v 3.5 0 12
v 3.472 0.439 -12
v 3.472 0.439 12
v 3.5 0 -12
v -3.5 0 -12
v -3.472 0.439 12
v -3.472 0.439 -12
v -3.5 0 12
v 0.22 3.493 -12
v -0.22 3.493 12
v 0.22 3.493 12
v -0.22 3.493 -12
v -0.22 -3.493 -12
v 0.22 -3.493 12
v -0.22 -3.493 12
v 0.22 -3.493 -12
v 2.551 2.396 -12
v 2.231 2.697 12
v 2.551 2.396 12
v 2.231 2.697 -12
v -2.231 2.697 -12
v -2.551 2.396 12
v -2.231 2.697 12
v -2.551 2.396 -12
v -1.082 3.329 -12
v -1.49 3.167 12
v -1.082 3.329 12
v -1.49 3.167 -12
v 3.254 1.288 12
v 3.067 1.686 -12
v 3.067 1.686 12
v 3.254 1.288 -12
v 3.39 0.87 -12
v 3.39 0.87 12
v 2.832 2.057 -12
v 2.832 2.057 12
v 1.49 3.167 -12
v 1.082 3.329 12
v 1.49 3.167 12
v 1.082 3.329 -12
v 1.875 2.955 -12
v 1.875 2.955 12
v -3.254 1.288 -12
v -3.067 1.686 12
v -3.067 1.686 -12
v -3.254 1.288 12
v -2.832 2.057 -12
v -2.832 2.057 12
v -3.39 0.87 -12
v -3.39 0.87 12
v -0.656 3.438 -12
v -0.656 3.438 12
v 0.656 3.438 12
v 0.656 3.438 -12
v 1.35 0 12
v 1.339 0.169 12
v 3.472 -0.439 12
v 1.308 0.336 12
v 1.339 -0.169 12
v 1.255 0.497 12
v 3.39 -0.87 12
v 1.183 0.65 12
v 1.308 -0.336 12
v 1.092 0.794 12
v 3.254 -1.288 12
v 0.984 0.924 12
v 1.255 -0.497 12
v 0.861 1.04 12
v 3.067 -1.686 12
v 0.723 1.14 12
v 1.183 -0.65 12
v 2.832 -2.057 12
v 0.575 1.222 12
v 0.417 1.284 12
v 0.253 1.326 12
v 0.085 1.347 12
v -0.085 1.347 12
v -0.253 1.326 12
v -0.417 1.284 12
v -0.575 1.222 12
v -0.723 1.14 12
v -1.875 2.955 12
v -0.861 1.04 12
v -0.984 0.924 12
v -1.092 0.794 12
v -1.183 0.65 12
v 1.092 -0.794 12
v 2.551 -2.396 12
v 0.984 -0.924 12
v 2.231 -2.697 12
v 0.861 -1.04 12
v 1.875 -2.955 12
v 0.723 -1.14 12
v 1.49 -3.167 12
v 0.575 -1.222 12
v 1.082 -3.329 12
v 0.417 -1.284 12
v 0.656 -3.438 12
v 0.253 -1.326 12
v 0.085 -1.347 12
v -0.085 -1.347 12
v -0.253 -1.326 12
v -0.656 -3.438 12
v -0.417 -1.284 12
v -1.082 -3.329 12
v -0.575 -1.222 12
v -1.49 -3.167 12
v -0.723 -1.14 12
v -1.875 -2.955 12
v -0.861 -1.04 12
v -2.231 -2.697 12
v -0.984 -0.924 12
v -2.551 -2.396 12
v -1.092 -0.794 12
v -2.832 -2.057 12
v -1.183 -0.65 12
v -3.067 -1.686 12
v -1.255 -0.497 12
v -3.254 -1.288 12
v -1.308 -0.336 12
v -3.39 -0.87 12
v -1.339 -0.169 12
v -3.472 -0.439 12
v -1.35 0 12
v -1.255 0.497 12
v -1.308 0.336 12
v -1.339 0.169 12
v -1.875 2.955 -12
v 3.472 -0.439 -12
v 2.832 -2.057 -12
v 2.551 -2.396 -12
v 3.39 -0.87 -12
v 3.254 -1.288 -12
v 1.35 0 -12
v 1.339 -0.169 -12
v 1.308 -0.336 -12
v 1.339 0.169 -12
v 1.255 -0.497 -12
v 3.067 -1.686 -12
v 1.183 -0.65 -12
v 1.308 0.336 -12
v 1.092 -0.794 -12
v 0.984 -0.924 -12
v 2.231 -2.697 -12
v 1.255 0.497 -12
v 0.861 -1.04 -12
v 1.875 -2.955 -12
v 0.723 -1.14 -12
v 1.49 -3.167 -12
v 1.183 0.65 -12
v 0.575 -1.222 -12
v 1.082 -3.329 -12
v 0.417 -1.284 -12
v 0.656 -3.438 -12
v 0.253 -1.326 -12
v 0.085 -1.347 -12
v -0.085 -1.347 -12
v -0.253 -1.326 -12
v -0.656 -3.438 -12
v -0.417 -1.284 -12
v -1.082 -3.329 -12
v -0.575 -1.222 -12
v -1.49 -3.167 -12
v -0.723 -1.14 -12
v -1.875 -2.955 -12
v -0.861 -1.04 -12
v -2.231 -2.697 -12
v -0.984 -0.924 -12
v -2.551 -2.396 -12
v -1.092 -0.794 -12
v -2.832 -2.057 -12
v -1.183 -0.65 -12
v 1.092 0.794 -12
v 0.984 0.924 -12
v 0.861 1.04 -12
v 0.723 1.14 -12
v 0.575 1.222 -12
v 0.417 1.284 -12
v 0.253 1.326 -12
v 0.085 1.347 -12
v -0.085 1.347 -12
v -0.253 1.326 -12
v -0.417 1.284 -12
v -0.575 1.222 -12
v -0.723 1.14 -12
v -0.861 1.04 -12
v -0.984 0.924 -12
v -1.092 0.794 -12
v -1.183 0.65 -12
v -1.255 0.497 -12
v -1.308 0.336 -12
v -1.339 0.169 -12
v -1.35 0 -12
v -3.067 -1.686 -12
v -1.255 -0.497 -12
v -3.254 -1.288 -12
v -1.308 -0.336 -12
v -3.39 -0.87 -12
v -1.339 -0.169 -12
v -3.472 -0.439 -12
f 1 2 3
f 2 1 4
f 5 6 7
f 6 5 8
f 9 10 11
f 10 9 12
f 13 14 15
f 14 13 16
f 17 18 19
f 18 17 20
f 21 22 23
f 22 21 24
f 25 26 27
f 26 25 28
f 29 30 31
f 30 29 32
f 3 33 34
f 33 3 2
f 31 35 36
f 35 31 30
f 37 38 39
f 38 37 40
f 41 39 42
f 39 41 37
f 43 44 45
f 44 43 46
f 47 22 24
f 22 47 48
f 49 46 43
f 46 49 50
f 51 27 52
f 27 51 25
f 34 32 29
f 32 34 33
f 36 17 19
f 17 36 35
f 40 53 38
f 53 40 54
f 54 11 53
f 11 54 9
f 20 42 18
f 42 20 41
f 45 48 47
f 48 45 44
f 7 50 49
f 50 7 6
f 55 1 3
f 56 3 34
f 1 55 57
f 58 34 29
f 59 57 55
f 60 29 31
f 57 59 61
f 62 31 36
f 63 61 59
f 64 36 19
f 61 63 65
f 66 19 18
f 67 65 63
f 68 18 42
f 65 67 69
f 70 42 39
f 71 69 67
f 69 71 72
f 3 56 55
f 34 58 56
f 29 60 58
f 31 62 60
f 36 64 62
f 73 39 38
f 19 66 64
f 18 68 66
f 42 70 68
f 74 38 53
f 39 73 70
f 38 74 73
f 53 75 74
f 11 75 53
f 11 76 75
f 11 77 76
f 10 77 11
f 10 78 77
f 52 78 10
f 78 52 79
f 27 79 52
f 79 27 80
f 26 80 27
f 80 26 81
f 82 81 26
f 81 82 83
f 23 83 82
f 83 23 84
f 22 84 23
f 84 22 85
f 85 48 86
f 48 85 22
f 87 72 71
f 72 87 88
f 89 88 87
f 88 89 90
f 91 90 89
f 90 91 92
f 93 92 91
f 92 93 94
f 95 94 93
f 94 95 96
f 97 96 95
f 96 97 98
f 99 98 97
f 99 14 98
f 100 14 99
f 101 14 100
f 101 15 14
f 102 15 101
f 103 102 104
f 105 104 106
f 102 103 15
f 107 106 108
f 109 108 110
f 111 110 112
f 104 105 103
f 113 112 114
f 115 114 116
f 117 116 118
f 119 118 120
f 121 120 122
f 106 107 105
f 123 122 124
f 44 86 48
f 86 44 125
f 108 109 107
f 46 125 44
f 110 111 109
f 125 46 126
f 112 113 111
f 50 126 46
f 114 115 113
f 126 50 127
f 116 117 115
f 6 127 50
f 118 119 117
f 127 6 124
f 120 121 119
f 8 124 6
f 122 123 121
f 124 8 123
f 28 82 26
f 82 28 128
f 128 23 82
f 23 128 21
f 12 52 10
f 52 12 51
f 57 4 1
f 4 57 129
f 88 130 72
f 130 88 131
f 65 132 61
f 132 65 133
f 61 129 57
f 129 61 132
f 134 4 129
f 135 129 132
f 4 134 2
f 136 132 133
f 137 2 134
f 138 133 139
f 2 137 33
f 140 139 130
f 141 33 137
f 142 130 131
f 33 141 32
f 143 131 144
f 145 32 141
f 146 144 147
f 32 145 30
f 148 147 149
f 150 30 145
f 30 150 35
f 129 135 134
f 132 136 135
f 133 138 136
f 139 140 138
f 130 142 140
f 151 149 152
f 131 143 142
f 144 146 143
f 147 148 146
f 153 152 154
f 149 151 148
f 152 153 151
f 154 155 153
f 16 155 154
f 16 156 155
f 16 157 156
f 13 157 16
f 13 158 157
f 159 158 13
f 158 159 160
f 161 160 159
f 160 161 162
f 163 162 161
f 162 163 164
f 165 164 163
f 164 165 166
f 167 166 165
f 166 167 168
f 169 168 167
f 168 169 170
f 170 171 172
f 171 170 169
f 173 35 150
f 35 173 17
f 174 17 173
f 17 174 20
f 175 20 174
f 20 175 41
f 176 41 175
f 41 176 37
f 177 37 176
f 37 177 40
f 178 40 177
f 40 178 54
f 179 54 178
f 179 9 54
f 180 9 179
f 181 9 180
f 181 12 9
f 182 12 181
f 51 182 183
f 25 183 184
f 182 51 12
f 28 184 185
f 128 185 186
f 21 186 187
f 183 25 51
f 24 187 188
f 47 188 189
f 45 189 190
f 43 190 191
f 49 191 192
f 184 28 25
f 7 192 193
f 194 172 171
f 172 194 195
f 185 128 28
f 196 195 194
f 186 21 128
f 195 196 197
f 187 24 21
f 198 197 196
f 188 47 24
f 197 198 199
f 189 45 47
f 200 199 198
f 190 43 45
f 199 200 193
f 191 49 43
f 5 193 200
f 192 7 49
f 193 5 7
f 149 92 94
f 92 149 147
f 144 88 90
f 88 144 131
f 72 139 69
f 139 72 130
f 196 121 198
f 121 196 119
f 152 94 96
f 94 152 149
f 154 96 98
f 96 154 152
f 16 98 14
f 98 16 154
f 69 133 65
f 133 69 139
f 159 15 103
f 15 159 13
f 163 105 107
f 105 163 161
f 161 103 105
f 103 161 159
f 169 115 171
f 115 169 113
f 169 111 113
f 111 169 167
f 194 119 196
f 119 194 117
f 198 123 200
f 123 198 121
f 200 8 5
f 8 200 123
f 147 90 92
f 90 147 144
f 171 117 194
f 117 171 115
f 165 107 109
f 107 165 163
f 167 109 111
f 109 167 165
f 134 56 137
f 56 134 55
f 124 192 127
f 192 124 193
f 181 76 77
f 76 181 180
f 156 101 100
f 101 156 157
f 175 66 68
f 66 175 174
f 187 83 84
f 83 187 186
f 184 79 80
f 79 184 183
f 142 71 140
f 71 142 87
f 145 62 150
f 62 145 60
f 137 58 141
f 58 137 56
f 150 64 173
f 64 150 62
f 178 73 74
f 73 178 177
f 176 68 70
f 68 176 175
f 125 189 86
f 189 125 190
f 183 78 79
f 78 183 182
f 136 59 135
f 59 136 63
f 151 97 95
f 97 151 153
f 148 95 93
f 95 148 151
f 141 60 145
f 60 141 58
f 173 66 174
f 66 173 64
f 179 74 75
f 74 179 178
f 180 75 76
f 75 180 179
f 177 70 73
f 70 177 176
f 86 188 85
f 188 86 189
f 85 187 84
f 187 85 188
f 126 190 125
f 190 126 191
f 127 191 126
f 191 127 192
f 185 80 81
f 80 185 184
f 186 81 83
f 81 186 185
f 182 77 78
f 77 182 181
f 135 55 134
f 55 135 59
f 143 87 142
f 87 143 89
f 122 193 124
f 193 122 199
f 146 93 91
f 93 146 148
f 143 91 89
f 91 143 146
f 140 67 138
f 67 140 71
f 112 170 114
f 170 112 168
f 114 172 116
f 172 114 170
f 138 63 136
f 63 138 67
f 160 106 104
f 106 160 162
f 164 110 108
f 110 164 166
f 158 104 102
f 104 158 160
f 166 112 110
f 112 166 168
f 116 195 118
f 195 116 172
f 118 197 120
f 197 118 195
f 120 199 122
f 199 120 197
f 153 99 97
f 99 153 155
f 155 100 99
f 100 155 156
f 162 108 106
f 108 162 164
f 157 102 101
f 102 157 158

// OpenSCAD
$fn = 50;


difference() {
	union() {
		translate(v = [0, 0, -12.0000000000]) {
			cylinder(h = 24, r = 3.5000000000);
		}
	}
	union() {
		translate(v = [0, 0, -100.0000000000]) {
			cylinder(h = 200, r = 1.3500000000);
		}
	}
}
